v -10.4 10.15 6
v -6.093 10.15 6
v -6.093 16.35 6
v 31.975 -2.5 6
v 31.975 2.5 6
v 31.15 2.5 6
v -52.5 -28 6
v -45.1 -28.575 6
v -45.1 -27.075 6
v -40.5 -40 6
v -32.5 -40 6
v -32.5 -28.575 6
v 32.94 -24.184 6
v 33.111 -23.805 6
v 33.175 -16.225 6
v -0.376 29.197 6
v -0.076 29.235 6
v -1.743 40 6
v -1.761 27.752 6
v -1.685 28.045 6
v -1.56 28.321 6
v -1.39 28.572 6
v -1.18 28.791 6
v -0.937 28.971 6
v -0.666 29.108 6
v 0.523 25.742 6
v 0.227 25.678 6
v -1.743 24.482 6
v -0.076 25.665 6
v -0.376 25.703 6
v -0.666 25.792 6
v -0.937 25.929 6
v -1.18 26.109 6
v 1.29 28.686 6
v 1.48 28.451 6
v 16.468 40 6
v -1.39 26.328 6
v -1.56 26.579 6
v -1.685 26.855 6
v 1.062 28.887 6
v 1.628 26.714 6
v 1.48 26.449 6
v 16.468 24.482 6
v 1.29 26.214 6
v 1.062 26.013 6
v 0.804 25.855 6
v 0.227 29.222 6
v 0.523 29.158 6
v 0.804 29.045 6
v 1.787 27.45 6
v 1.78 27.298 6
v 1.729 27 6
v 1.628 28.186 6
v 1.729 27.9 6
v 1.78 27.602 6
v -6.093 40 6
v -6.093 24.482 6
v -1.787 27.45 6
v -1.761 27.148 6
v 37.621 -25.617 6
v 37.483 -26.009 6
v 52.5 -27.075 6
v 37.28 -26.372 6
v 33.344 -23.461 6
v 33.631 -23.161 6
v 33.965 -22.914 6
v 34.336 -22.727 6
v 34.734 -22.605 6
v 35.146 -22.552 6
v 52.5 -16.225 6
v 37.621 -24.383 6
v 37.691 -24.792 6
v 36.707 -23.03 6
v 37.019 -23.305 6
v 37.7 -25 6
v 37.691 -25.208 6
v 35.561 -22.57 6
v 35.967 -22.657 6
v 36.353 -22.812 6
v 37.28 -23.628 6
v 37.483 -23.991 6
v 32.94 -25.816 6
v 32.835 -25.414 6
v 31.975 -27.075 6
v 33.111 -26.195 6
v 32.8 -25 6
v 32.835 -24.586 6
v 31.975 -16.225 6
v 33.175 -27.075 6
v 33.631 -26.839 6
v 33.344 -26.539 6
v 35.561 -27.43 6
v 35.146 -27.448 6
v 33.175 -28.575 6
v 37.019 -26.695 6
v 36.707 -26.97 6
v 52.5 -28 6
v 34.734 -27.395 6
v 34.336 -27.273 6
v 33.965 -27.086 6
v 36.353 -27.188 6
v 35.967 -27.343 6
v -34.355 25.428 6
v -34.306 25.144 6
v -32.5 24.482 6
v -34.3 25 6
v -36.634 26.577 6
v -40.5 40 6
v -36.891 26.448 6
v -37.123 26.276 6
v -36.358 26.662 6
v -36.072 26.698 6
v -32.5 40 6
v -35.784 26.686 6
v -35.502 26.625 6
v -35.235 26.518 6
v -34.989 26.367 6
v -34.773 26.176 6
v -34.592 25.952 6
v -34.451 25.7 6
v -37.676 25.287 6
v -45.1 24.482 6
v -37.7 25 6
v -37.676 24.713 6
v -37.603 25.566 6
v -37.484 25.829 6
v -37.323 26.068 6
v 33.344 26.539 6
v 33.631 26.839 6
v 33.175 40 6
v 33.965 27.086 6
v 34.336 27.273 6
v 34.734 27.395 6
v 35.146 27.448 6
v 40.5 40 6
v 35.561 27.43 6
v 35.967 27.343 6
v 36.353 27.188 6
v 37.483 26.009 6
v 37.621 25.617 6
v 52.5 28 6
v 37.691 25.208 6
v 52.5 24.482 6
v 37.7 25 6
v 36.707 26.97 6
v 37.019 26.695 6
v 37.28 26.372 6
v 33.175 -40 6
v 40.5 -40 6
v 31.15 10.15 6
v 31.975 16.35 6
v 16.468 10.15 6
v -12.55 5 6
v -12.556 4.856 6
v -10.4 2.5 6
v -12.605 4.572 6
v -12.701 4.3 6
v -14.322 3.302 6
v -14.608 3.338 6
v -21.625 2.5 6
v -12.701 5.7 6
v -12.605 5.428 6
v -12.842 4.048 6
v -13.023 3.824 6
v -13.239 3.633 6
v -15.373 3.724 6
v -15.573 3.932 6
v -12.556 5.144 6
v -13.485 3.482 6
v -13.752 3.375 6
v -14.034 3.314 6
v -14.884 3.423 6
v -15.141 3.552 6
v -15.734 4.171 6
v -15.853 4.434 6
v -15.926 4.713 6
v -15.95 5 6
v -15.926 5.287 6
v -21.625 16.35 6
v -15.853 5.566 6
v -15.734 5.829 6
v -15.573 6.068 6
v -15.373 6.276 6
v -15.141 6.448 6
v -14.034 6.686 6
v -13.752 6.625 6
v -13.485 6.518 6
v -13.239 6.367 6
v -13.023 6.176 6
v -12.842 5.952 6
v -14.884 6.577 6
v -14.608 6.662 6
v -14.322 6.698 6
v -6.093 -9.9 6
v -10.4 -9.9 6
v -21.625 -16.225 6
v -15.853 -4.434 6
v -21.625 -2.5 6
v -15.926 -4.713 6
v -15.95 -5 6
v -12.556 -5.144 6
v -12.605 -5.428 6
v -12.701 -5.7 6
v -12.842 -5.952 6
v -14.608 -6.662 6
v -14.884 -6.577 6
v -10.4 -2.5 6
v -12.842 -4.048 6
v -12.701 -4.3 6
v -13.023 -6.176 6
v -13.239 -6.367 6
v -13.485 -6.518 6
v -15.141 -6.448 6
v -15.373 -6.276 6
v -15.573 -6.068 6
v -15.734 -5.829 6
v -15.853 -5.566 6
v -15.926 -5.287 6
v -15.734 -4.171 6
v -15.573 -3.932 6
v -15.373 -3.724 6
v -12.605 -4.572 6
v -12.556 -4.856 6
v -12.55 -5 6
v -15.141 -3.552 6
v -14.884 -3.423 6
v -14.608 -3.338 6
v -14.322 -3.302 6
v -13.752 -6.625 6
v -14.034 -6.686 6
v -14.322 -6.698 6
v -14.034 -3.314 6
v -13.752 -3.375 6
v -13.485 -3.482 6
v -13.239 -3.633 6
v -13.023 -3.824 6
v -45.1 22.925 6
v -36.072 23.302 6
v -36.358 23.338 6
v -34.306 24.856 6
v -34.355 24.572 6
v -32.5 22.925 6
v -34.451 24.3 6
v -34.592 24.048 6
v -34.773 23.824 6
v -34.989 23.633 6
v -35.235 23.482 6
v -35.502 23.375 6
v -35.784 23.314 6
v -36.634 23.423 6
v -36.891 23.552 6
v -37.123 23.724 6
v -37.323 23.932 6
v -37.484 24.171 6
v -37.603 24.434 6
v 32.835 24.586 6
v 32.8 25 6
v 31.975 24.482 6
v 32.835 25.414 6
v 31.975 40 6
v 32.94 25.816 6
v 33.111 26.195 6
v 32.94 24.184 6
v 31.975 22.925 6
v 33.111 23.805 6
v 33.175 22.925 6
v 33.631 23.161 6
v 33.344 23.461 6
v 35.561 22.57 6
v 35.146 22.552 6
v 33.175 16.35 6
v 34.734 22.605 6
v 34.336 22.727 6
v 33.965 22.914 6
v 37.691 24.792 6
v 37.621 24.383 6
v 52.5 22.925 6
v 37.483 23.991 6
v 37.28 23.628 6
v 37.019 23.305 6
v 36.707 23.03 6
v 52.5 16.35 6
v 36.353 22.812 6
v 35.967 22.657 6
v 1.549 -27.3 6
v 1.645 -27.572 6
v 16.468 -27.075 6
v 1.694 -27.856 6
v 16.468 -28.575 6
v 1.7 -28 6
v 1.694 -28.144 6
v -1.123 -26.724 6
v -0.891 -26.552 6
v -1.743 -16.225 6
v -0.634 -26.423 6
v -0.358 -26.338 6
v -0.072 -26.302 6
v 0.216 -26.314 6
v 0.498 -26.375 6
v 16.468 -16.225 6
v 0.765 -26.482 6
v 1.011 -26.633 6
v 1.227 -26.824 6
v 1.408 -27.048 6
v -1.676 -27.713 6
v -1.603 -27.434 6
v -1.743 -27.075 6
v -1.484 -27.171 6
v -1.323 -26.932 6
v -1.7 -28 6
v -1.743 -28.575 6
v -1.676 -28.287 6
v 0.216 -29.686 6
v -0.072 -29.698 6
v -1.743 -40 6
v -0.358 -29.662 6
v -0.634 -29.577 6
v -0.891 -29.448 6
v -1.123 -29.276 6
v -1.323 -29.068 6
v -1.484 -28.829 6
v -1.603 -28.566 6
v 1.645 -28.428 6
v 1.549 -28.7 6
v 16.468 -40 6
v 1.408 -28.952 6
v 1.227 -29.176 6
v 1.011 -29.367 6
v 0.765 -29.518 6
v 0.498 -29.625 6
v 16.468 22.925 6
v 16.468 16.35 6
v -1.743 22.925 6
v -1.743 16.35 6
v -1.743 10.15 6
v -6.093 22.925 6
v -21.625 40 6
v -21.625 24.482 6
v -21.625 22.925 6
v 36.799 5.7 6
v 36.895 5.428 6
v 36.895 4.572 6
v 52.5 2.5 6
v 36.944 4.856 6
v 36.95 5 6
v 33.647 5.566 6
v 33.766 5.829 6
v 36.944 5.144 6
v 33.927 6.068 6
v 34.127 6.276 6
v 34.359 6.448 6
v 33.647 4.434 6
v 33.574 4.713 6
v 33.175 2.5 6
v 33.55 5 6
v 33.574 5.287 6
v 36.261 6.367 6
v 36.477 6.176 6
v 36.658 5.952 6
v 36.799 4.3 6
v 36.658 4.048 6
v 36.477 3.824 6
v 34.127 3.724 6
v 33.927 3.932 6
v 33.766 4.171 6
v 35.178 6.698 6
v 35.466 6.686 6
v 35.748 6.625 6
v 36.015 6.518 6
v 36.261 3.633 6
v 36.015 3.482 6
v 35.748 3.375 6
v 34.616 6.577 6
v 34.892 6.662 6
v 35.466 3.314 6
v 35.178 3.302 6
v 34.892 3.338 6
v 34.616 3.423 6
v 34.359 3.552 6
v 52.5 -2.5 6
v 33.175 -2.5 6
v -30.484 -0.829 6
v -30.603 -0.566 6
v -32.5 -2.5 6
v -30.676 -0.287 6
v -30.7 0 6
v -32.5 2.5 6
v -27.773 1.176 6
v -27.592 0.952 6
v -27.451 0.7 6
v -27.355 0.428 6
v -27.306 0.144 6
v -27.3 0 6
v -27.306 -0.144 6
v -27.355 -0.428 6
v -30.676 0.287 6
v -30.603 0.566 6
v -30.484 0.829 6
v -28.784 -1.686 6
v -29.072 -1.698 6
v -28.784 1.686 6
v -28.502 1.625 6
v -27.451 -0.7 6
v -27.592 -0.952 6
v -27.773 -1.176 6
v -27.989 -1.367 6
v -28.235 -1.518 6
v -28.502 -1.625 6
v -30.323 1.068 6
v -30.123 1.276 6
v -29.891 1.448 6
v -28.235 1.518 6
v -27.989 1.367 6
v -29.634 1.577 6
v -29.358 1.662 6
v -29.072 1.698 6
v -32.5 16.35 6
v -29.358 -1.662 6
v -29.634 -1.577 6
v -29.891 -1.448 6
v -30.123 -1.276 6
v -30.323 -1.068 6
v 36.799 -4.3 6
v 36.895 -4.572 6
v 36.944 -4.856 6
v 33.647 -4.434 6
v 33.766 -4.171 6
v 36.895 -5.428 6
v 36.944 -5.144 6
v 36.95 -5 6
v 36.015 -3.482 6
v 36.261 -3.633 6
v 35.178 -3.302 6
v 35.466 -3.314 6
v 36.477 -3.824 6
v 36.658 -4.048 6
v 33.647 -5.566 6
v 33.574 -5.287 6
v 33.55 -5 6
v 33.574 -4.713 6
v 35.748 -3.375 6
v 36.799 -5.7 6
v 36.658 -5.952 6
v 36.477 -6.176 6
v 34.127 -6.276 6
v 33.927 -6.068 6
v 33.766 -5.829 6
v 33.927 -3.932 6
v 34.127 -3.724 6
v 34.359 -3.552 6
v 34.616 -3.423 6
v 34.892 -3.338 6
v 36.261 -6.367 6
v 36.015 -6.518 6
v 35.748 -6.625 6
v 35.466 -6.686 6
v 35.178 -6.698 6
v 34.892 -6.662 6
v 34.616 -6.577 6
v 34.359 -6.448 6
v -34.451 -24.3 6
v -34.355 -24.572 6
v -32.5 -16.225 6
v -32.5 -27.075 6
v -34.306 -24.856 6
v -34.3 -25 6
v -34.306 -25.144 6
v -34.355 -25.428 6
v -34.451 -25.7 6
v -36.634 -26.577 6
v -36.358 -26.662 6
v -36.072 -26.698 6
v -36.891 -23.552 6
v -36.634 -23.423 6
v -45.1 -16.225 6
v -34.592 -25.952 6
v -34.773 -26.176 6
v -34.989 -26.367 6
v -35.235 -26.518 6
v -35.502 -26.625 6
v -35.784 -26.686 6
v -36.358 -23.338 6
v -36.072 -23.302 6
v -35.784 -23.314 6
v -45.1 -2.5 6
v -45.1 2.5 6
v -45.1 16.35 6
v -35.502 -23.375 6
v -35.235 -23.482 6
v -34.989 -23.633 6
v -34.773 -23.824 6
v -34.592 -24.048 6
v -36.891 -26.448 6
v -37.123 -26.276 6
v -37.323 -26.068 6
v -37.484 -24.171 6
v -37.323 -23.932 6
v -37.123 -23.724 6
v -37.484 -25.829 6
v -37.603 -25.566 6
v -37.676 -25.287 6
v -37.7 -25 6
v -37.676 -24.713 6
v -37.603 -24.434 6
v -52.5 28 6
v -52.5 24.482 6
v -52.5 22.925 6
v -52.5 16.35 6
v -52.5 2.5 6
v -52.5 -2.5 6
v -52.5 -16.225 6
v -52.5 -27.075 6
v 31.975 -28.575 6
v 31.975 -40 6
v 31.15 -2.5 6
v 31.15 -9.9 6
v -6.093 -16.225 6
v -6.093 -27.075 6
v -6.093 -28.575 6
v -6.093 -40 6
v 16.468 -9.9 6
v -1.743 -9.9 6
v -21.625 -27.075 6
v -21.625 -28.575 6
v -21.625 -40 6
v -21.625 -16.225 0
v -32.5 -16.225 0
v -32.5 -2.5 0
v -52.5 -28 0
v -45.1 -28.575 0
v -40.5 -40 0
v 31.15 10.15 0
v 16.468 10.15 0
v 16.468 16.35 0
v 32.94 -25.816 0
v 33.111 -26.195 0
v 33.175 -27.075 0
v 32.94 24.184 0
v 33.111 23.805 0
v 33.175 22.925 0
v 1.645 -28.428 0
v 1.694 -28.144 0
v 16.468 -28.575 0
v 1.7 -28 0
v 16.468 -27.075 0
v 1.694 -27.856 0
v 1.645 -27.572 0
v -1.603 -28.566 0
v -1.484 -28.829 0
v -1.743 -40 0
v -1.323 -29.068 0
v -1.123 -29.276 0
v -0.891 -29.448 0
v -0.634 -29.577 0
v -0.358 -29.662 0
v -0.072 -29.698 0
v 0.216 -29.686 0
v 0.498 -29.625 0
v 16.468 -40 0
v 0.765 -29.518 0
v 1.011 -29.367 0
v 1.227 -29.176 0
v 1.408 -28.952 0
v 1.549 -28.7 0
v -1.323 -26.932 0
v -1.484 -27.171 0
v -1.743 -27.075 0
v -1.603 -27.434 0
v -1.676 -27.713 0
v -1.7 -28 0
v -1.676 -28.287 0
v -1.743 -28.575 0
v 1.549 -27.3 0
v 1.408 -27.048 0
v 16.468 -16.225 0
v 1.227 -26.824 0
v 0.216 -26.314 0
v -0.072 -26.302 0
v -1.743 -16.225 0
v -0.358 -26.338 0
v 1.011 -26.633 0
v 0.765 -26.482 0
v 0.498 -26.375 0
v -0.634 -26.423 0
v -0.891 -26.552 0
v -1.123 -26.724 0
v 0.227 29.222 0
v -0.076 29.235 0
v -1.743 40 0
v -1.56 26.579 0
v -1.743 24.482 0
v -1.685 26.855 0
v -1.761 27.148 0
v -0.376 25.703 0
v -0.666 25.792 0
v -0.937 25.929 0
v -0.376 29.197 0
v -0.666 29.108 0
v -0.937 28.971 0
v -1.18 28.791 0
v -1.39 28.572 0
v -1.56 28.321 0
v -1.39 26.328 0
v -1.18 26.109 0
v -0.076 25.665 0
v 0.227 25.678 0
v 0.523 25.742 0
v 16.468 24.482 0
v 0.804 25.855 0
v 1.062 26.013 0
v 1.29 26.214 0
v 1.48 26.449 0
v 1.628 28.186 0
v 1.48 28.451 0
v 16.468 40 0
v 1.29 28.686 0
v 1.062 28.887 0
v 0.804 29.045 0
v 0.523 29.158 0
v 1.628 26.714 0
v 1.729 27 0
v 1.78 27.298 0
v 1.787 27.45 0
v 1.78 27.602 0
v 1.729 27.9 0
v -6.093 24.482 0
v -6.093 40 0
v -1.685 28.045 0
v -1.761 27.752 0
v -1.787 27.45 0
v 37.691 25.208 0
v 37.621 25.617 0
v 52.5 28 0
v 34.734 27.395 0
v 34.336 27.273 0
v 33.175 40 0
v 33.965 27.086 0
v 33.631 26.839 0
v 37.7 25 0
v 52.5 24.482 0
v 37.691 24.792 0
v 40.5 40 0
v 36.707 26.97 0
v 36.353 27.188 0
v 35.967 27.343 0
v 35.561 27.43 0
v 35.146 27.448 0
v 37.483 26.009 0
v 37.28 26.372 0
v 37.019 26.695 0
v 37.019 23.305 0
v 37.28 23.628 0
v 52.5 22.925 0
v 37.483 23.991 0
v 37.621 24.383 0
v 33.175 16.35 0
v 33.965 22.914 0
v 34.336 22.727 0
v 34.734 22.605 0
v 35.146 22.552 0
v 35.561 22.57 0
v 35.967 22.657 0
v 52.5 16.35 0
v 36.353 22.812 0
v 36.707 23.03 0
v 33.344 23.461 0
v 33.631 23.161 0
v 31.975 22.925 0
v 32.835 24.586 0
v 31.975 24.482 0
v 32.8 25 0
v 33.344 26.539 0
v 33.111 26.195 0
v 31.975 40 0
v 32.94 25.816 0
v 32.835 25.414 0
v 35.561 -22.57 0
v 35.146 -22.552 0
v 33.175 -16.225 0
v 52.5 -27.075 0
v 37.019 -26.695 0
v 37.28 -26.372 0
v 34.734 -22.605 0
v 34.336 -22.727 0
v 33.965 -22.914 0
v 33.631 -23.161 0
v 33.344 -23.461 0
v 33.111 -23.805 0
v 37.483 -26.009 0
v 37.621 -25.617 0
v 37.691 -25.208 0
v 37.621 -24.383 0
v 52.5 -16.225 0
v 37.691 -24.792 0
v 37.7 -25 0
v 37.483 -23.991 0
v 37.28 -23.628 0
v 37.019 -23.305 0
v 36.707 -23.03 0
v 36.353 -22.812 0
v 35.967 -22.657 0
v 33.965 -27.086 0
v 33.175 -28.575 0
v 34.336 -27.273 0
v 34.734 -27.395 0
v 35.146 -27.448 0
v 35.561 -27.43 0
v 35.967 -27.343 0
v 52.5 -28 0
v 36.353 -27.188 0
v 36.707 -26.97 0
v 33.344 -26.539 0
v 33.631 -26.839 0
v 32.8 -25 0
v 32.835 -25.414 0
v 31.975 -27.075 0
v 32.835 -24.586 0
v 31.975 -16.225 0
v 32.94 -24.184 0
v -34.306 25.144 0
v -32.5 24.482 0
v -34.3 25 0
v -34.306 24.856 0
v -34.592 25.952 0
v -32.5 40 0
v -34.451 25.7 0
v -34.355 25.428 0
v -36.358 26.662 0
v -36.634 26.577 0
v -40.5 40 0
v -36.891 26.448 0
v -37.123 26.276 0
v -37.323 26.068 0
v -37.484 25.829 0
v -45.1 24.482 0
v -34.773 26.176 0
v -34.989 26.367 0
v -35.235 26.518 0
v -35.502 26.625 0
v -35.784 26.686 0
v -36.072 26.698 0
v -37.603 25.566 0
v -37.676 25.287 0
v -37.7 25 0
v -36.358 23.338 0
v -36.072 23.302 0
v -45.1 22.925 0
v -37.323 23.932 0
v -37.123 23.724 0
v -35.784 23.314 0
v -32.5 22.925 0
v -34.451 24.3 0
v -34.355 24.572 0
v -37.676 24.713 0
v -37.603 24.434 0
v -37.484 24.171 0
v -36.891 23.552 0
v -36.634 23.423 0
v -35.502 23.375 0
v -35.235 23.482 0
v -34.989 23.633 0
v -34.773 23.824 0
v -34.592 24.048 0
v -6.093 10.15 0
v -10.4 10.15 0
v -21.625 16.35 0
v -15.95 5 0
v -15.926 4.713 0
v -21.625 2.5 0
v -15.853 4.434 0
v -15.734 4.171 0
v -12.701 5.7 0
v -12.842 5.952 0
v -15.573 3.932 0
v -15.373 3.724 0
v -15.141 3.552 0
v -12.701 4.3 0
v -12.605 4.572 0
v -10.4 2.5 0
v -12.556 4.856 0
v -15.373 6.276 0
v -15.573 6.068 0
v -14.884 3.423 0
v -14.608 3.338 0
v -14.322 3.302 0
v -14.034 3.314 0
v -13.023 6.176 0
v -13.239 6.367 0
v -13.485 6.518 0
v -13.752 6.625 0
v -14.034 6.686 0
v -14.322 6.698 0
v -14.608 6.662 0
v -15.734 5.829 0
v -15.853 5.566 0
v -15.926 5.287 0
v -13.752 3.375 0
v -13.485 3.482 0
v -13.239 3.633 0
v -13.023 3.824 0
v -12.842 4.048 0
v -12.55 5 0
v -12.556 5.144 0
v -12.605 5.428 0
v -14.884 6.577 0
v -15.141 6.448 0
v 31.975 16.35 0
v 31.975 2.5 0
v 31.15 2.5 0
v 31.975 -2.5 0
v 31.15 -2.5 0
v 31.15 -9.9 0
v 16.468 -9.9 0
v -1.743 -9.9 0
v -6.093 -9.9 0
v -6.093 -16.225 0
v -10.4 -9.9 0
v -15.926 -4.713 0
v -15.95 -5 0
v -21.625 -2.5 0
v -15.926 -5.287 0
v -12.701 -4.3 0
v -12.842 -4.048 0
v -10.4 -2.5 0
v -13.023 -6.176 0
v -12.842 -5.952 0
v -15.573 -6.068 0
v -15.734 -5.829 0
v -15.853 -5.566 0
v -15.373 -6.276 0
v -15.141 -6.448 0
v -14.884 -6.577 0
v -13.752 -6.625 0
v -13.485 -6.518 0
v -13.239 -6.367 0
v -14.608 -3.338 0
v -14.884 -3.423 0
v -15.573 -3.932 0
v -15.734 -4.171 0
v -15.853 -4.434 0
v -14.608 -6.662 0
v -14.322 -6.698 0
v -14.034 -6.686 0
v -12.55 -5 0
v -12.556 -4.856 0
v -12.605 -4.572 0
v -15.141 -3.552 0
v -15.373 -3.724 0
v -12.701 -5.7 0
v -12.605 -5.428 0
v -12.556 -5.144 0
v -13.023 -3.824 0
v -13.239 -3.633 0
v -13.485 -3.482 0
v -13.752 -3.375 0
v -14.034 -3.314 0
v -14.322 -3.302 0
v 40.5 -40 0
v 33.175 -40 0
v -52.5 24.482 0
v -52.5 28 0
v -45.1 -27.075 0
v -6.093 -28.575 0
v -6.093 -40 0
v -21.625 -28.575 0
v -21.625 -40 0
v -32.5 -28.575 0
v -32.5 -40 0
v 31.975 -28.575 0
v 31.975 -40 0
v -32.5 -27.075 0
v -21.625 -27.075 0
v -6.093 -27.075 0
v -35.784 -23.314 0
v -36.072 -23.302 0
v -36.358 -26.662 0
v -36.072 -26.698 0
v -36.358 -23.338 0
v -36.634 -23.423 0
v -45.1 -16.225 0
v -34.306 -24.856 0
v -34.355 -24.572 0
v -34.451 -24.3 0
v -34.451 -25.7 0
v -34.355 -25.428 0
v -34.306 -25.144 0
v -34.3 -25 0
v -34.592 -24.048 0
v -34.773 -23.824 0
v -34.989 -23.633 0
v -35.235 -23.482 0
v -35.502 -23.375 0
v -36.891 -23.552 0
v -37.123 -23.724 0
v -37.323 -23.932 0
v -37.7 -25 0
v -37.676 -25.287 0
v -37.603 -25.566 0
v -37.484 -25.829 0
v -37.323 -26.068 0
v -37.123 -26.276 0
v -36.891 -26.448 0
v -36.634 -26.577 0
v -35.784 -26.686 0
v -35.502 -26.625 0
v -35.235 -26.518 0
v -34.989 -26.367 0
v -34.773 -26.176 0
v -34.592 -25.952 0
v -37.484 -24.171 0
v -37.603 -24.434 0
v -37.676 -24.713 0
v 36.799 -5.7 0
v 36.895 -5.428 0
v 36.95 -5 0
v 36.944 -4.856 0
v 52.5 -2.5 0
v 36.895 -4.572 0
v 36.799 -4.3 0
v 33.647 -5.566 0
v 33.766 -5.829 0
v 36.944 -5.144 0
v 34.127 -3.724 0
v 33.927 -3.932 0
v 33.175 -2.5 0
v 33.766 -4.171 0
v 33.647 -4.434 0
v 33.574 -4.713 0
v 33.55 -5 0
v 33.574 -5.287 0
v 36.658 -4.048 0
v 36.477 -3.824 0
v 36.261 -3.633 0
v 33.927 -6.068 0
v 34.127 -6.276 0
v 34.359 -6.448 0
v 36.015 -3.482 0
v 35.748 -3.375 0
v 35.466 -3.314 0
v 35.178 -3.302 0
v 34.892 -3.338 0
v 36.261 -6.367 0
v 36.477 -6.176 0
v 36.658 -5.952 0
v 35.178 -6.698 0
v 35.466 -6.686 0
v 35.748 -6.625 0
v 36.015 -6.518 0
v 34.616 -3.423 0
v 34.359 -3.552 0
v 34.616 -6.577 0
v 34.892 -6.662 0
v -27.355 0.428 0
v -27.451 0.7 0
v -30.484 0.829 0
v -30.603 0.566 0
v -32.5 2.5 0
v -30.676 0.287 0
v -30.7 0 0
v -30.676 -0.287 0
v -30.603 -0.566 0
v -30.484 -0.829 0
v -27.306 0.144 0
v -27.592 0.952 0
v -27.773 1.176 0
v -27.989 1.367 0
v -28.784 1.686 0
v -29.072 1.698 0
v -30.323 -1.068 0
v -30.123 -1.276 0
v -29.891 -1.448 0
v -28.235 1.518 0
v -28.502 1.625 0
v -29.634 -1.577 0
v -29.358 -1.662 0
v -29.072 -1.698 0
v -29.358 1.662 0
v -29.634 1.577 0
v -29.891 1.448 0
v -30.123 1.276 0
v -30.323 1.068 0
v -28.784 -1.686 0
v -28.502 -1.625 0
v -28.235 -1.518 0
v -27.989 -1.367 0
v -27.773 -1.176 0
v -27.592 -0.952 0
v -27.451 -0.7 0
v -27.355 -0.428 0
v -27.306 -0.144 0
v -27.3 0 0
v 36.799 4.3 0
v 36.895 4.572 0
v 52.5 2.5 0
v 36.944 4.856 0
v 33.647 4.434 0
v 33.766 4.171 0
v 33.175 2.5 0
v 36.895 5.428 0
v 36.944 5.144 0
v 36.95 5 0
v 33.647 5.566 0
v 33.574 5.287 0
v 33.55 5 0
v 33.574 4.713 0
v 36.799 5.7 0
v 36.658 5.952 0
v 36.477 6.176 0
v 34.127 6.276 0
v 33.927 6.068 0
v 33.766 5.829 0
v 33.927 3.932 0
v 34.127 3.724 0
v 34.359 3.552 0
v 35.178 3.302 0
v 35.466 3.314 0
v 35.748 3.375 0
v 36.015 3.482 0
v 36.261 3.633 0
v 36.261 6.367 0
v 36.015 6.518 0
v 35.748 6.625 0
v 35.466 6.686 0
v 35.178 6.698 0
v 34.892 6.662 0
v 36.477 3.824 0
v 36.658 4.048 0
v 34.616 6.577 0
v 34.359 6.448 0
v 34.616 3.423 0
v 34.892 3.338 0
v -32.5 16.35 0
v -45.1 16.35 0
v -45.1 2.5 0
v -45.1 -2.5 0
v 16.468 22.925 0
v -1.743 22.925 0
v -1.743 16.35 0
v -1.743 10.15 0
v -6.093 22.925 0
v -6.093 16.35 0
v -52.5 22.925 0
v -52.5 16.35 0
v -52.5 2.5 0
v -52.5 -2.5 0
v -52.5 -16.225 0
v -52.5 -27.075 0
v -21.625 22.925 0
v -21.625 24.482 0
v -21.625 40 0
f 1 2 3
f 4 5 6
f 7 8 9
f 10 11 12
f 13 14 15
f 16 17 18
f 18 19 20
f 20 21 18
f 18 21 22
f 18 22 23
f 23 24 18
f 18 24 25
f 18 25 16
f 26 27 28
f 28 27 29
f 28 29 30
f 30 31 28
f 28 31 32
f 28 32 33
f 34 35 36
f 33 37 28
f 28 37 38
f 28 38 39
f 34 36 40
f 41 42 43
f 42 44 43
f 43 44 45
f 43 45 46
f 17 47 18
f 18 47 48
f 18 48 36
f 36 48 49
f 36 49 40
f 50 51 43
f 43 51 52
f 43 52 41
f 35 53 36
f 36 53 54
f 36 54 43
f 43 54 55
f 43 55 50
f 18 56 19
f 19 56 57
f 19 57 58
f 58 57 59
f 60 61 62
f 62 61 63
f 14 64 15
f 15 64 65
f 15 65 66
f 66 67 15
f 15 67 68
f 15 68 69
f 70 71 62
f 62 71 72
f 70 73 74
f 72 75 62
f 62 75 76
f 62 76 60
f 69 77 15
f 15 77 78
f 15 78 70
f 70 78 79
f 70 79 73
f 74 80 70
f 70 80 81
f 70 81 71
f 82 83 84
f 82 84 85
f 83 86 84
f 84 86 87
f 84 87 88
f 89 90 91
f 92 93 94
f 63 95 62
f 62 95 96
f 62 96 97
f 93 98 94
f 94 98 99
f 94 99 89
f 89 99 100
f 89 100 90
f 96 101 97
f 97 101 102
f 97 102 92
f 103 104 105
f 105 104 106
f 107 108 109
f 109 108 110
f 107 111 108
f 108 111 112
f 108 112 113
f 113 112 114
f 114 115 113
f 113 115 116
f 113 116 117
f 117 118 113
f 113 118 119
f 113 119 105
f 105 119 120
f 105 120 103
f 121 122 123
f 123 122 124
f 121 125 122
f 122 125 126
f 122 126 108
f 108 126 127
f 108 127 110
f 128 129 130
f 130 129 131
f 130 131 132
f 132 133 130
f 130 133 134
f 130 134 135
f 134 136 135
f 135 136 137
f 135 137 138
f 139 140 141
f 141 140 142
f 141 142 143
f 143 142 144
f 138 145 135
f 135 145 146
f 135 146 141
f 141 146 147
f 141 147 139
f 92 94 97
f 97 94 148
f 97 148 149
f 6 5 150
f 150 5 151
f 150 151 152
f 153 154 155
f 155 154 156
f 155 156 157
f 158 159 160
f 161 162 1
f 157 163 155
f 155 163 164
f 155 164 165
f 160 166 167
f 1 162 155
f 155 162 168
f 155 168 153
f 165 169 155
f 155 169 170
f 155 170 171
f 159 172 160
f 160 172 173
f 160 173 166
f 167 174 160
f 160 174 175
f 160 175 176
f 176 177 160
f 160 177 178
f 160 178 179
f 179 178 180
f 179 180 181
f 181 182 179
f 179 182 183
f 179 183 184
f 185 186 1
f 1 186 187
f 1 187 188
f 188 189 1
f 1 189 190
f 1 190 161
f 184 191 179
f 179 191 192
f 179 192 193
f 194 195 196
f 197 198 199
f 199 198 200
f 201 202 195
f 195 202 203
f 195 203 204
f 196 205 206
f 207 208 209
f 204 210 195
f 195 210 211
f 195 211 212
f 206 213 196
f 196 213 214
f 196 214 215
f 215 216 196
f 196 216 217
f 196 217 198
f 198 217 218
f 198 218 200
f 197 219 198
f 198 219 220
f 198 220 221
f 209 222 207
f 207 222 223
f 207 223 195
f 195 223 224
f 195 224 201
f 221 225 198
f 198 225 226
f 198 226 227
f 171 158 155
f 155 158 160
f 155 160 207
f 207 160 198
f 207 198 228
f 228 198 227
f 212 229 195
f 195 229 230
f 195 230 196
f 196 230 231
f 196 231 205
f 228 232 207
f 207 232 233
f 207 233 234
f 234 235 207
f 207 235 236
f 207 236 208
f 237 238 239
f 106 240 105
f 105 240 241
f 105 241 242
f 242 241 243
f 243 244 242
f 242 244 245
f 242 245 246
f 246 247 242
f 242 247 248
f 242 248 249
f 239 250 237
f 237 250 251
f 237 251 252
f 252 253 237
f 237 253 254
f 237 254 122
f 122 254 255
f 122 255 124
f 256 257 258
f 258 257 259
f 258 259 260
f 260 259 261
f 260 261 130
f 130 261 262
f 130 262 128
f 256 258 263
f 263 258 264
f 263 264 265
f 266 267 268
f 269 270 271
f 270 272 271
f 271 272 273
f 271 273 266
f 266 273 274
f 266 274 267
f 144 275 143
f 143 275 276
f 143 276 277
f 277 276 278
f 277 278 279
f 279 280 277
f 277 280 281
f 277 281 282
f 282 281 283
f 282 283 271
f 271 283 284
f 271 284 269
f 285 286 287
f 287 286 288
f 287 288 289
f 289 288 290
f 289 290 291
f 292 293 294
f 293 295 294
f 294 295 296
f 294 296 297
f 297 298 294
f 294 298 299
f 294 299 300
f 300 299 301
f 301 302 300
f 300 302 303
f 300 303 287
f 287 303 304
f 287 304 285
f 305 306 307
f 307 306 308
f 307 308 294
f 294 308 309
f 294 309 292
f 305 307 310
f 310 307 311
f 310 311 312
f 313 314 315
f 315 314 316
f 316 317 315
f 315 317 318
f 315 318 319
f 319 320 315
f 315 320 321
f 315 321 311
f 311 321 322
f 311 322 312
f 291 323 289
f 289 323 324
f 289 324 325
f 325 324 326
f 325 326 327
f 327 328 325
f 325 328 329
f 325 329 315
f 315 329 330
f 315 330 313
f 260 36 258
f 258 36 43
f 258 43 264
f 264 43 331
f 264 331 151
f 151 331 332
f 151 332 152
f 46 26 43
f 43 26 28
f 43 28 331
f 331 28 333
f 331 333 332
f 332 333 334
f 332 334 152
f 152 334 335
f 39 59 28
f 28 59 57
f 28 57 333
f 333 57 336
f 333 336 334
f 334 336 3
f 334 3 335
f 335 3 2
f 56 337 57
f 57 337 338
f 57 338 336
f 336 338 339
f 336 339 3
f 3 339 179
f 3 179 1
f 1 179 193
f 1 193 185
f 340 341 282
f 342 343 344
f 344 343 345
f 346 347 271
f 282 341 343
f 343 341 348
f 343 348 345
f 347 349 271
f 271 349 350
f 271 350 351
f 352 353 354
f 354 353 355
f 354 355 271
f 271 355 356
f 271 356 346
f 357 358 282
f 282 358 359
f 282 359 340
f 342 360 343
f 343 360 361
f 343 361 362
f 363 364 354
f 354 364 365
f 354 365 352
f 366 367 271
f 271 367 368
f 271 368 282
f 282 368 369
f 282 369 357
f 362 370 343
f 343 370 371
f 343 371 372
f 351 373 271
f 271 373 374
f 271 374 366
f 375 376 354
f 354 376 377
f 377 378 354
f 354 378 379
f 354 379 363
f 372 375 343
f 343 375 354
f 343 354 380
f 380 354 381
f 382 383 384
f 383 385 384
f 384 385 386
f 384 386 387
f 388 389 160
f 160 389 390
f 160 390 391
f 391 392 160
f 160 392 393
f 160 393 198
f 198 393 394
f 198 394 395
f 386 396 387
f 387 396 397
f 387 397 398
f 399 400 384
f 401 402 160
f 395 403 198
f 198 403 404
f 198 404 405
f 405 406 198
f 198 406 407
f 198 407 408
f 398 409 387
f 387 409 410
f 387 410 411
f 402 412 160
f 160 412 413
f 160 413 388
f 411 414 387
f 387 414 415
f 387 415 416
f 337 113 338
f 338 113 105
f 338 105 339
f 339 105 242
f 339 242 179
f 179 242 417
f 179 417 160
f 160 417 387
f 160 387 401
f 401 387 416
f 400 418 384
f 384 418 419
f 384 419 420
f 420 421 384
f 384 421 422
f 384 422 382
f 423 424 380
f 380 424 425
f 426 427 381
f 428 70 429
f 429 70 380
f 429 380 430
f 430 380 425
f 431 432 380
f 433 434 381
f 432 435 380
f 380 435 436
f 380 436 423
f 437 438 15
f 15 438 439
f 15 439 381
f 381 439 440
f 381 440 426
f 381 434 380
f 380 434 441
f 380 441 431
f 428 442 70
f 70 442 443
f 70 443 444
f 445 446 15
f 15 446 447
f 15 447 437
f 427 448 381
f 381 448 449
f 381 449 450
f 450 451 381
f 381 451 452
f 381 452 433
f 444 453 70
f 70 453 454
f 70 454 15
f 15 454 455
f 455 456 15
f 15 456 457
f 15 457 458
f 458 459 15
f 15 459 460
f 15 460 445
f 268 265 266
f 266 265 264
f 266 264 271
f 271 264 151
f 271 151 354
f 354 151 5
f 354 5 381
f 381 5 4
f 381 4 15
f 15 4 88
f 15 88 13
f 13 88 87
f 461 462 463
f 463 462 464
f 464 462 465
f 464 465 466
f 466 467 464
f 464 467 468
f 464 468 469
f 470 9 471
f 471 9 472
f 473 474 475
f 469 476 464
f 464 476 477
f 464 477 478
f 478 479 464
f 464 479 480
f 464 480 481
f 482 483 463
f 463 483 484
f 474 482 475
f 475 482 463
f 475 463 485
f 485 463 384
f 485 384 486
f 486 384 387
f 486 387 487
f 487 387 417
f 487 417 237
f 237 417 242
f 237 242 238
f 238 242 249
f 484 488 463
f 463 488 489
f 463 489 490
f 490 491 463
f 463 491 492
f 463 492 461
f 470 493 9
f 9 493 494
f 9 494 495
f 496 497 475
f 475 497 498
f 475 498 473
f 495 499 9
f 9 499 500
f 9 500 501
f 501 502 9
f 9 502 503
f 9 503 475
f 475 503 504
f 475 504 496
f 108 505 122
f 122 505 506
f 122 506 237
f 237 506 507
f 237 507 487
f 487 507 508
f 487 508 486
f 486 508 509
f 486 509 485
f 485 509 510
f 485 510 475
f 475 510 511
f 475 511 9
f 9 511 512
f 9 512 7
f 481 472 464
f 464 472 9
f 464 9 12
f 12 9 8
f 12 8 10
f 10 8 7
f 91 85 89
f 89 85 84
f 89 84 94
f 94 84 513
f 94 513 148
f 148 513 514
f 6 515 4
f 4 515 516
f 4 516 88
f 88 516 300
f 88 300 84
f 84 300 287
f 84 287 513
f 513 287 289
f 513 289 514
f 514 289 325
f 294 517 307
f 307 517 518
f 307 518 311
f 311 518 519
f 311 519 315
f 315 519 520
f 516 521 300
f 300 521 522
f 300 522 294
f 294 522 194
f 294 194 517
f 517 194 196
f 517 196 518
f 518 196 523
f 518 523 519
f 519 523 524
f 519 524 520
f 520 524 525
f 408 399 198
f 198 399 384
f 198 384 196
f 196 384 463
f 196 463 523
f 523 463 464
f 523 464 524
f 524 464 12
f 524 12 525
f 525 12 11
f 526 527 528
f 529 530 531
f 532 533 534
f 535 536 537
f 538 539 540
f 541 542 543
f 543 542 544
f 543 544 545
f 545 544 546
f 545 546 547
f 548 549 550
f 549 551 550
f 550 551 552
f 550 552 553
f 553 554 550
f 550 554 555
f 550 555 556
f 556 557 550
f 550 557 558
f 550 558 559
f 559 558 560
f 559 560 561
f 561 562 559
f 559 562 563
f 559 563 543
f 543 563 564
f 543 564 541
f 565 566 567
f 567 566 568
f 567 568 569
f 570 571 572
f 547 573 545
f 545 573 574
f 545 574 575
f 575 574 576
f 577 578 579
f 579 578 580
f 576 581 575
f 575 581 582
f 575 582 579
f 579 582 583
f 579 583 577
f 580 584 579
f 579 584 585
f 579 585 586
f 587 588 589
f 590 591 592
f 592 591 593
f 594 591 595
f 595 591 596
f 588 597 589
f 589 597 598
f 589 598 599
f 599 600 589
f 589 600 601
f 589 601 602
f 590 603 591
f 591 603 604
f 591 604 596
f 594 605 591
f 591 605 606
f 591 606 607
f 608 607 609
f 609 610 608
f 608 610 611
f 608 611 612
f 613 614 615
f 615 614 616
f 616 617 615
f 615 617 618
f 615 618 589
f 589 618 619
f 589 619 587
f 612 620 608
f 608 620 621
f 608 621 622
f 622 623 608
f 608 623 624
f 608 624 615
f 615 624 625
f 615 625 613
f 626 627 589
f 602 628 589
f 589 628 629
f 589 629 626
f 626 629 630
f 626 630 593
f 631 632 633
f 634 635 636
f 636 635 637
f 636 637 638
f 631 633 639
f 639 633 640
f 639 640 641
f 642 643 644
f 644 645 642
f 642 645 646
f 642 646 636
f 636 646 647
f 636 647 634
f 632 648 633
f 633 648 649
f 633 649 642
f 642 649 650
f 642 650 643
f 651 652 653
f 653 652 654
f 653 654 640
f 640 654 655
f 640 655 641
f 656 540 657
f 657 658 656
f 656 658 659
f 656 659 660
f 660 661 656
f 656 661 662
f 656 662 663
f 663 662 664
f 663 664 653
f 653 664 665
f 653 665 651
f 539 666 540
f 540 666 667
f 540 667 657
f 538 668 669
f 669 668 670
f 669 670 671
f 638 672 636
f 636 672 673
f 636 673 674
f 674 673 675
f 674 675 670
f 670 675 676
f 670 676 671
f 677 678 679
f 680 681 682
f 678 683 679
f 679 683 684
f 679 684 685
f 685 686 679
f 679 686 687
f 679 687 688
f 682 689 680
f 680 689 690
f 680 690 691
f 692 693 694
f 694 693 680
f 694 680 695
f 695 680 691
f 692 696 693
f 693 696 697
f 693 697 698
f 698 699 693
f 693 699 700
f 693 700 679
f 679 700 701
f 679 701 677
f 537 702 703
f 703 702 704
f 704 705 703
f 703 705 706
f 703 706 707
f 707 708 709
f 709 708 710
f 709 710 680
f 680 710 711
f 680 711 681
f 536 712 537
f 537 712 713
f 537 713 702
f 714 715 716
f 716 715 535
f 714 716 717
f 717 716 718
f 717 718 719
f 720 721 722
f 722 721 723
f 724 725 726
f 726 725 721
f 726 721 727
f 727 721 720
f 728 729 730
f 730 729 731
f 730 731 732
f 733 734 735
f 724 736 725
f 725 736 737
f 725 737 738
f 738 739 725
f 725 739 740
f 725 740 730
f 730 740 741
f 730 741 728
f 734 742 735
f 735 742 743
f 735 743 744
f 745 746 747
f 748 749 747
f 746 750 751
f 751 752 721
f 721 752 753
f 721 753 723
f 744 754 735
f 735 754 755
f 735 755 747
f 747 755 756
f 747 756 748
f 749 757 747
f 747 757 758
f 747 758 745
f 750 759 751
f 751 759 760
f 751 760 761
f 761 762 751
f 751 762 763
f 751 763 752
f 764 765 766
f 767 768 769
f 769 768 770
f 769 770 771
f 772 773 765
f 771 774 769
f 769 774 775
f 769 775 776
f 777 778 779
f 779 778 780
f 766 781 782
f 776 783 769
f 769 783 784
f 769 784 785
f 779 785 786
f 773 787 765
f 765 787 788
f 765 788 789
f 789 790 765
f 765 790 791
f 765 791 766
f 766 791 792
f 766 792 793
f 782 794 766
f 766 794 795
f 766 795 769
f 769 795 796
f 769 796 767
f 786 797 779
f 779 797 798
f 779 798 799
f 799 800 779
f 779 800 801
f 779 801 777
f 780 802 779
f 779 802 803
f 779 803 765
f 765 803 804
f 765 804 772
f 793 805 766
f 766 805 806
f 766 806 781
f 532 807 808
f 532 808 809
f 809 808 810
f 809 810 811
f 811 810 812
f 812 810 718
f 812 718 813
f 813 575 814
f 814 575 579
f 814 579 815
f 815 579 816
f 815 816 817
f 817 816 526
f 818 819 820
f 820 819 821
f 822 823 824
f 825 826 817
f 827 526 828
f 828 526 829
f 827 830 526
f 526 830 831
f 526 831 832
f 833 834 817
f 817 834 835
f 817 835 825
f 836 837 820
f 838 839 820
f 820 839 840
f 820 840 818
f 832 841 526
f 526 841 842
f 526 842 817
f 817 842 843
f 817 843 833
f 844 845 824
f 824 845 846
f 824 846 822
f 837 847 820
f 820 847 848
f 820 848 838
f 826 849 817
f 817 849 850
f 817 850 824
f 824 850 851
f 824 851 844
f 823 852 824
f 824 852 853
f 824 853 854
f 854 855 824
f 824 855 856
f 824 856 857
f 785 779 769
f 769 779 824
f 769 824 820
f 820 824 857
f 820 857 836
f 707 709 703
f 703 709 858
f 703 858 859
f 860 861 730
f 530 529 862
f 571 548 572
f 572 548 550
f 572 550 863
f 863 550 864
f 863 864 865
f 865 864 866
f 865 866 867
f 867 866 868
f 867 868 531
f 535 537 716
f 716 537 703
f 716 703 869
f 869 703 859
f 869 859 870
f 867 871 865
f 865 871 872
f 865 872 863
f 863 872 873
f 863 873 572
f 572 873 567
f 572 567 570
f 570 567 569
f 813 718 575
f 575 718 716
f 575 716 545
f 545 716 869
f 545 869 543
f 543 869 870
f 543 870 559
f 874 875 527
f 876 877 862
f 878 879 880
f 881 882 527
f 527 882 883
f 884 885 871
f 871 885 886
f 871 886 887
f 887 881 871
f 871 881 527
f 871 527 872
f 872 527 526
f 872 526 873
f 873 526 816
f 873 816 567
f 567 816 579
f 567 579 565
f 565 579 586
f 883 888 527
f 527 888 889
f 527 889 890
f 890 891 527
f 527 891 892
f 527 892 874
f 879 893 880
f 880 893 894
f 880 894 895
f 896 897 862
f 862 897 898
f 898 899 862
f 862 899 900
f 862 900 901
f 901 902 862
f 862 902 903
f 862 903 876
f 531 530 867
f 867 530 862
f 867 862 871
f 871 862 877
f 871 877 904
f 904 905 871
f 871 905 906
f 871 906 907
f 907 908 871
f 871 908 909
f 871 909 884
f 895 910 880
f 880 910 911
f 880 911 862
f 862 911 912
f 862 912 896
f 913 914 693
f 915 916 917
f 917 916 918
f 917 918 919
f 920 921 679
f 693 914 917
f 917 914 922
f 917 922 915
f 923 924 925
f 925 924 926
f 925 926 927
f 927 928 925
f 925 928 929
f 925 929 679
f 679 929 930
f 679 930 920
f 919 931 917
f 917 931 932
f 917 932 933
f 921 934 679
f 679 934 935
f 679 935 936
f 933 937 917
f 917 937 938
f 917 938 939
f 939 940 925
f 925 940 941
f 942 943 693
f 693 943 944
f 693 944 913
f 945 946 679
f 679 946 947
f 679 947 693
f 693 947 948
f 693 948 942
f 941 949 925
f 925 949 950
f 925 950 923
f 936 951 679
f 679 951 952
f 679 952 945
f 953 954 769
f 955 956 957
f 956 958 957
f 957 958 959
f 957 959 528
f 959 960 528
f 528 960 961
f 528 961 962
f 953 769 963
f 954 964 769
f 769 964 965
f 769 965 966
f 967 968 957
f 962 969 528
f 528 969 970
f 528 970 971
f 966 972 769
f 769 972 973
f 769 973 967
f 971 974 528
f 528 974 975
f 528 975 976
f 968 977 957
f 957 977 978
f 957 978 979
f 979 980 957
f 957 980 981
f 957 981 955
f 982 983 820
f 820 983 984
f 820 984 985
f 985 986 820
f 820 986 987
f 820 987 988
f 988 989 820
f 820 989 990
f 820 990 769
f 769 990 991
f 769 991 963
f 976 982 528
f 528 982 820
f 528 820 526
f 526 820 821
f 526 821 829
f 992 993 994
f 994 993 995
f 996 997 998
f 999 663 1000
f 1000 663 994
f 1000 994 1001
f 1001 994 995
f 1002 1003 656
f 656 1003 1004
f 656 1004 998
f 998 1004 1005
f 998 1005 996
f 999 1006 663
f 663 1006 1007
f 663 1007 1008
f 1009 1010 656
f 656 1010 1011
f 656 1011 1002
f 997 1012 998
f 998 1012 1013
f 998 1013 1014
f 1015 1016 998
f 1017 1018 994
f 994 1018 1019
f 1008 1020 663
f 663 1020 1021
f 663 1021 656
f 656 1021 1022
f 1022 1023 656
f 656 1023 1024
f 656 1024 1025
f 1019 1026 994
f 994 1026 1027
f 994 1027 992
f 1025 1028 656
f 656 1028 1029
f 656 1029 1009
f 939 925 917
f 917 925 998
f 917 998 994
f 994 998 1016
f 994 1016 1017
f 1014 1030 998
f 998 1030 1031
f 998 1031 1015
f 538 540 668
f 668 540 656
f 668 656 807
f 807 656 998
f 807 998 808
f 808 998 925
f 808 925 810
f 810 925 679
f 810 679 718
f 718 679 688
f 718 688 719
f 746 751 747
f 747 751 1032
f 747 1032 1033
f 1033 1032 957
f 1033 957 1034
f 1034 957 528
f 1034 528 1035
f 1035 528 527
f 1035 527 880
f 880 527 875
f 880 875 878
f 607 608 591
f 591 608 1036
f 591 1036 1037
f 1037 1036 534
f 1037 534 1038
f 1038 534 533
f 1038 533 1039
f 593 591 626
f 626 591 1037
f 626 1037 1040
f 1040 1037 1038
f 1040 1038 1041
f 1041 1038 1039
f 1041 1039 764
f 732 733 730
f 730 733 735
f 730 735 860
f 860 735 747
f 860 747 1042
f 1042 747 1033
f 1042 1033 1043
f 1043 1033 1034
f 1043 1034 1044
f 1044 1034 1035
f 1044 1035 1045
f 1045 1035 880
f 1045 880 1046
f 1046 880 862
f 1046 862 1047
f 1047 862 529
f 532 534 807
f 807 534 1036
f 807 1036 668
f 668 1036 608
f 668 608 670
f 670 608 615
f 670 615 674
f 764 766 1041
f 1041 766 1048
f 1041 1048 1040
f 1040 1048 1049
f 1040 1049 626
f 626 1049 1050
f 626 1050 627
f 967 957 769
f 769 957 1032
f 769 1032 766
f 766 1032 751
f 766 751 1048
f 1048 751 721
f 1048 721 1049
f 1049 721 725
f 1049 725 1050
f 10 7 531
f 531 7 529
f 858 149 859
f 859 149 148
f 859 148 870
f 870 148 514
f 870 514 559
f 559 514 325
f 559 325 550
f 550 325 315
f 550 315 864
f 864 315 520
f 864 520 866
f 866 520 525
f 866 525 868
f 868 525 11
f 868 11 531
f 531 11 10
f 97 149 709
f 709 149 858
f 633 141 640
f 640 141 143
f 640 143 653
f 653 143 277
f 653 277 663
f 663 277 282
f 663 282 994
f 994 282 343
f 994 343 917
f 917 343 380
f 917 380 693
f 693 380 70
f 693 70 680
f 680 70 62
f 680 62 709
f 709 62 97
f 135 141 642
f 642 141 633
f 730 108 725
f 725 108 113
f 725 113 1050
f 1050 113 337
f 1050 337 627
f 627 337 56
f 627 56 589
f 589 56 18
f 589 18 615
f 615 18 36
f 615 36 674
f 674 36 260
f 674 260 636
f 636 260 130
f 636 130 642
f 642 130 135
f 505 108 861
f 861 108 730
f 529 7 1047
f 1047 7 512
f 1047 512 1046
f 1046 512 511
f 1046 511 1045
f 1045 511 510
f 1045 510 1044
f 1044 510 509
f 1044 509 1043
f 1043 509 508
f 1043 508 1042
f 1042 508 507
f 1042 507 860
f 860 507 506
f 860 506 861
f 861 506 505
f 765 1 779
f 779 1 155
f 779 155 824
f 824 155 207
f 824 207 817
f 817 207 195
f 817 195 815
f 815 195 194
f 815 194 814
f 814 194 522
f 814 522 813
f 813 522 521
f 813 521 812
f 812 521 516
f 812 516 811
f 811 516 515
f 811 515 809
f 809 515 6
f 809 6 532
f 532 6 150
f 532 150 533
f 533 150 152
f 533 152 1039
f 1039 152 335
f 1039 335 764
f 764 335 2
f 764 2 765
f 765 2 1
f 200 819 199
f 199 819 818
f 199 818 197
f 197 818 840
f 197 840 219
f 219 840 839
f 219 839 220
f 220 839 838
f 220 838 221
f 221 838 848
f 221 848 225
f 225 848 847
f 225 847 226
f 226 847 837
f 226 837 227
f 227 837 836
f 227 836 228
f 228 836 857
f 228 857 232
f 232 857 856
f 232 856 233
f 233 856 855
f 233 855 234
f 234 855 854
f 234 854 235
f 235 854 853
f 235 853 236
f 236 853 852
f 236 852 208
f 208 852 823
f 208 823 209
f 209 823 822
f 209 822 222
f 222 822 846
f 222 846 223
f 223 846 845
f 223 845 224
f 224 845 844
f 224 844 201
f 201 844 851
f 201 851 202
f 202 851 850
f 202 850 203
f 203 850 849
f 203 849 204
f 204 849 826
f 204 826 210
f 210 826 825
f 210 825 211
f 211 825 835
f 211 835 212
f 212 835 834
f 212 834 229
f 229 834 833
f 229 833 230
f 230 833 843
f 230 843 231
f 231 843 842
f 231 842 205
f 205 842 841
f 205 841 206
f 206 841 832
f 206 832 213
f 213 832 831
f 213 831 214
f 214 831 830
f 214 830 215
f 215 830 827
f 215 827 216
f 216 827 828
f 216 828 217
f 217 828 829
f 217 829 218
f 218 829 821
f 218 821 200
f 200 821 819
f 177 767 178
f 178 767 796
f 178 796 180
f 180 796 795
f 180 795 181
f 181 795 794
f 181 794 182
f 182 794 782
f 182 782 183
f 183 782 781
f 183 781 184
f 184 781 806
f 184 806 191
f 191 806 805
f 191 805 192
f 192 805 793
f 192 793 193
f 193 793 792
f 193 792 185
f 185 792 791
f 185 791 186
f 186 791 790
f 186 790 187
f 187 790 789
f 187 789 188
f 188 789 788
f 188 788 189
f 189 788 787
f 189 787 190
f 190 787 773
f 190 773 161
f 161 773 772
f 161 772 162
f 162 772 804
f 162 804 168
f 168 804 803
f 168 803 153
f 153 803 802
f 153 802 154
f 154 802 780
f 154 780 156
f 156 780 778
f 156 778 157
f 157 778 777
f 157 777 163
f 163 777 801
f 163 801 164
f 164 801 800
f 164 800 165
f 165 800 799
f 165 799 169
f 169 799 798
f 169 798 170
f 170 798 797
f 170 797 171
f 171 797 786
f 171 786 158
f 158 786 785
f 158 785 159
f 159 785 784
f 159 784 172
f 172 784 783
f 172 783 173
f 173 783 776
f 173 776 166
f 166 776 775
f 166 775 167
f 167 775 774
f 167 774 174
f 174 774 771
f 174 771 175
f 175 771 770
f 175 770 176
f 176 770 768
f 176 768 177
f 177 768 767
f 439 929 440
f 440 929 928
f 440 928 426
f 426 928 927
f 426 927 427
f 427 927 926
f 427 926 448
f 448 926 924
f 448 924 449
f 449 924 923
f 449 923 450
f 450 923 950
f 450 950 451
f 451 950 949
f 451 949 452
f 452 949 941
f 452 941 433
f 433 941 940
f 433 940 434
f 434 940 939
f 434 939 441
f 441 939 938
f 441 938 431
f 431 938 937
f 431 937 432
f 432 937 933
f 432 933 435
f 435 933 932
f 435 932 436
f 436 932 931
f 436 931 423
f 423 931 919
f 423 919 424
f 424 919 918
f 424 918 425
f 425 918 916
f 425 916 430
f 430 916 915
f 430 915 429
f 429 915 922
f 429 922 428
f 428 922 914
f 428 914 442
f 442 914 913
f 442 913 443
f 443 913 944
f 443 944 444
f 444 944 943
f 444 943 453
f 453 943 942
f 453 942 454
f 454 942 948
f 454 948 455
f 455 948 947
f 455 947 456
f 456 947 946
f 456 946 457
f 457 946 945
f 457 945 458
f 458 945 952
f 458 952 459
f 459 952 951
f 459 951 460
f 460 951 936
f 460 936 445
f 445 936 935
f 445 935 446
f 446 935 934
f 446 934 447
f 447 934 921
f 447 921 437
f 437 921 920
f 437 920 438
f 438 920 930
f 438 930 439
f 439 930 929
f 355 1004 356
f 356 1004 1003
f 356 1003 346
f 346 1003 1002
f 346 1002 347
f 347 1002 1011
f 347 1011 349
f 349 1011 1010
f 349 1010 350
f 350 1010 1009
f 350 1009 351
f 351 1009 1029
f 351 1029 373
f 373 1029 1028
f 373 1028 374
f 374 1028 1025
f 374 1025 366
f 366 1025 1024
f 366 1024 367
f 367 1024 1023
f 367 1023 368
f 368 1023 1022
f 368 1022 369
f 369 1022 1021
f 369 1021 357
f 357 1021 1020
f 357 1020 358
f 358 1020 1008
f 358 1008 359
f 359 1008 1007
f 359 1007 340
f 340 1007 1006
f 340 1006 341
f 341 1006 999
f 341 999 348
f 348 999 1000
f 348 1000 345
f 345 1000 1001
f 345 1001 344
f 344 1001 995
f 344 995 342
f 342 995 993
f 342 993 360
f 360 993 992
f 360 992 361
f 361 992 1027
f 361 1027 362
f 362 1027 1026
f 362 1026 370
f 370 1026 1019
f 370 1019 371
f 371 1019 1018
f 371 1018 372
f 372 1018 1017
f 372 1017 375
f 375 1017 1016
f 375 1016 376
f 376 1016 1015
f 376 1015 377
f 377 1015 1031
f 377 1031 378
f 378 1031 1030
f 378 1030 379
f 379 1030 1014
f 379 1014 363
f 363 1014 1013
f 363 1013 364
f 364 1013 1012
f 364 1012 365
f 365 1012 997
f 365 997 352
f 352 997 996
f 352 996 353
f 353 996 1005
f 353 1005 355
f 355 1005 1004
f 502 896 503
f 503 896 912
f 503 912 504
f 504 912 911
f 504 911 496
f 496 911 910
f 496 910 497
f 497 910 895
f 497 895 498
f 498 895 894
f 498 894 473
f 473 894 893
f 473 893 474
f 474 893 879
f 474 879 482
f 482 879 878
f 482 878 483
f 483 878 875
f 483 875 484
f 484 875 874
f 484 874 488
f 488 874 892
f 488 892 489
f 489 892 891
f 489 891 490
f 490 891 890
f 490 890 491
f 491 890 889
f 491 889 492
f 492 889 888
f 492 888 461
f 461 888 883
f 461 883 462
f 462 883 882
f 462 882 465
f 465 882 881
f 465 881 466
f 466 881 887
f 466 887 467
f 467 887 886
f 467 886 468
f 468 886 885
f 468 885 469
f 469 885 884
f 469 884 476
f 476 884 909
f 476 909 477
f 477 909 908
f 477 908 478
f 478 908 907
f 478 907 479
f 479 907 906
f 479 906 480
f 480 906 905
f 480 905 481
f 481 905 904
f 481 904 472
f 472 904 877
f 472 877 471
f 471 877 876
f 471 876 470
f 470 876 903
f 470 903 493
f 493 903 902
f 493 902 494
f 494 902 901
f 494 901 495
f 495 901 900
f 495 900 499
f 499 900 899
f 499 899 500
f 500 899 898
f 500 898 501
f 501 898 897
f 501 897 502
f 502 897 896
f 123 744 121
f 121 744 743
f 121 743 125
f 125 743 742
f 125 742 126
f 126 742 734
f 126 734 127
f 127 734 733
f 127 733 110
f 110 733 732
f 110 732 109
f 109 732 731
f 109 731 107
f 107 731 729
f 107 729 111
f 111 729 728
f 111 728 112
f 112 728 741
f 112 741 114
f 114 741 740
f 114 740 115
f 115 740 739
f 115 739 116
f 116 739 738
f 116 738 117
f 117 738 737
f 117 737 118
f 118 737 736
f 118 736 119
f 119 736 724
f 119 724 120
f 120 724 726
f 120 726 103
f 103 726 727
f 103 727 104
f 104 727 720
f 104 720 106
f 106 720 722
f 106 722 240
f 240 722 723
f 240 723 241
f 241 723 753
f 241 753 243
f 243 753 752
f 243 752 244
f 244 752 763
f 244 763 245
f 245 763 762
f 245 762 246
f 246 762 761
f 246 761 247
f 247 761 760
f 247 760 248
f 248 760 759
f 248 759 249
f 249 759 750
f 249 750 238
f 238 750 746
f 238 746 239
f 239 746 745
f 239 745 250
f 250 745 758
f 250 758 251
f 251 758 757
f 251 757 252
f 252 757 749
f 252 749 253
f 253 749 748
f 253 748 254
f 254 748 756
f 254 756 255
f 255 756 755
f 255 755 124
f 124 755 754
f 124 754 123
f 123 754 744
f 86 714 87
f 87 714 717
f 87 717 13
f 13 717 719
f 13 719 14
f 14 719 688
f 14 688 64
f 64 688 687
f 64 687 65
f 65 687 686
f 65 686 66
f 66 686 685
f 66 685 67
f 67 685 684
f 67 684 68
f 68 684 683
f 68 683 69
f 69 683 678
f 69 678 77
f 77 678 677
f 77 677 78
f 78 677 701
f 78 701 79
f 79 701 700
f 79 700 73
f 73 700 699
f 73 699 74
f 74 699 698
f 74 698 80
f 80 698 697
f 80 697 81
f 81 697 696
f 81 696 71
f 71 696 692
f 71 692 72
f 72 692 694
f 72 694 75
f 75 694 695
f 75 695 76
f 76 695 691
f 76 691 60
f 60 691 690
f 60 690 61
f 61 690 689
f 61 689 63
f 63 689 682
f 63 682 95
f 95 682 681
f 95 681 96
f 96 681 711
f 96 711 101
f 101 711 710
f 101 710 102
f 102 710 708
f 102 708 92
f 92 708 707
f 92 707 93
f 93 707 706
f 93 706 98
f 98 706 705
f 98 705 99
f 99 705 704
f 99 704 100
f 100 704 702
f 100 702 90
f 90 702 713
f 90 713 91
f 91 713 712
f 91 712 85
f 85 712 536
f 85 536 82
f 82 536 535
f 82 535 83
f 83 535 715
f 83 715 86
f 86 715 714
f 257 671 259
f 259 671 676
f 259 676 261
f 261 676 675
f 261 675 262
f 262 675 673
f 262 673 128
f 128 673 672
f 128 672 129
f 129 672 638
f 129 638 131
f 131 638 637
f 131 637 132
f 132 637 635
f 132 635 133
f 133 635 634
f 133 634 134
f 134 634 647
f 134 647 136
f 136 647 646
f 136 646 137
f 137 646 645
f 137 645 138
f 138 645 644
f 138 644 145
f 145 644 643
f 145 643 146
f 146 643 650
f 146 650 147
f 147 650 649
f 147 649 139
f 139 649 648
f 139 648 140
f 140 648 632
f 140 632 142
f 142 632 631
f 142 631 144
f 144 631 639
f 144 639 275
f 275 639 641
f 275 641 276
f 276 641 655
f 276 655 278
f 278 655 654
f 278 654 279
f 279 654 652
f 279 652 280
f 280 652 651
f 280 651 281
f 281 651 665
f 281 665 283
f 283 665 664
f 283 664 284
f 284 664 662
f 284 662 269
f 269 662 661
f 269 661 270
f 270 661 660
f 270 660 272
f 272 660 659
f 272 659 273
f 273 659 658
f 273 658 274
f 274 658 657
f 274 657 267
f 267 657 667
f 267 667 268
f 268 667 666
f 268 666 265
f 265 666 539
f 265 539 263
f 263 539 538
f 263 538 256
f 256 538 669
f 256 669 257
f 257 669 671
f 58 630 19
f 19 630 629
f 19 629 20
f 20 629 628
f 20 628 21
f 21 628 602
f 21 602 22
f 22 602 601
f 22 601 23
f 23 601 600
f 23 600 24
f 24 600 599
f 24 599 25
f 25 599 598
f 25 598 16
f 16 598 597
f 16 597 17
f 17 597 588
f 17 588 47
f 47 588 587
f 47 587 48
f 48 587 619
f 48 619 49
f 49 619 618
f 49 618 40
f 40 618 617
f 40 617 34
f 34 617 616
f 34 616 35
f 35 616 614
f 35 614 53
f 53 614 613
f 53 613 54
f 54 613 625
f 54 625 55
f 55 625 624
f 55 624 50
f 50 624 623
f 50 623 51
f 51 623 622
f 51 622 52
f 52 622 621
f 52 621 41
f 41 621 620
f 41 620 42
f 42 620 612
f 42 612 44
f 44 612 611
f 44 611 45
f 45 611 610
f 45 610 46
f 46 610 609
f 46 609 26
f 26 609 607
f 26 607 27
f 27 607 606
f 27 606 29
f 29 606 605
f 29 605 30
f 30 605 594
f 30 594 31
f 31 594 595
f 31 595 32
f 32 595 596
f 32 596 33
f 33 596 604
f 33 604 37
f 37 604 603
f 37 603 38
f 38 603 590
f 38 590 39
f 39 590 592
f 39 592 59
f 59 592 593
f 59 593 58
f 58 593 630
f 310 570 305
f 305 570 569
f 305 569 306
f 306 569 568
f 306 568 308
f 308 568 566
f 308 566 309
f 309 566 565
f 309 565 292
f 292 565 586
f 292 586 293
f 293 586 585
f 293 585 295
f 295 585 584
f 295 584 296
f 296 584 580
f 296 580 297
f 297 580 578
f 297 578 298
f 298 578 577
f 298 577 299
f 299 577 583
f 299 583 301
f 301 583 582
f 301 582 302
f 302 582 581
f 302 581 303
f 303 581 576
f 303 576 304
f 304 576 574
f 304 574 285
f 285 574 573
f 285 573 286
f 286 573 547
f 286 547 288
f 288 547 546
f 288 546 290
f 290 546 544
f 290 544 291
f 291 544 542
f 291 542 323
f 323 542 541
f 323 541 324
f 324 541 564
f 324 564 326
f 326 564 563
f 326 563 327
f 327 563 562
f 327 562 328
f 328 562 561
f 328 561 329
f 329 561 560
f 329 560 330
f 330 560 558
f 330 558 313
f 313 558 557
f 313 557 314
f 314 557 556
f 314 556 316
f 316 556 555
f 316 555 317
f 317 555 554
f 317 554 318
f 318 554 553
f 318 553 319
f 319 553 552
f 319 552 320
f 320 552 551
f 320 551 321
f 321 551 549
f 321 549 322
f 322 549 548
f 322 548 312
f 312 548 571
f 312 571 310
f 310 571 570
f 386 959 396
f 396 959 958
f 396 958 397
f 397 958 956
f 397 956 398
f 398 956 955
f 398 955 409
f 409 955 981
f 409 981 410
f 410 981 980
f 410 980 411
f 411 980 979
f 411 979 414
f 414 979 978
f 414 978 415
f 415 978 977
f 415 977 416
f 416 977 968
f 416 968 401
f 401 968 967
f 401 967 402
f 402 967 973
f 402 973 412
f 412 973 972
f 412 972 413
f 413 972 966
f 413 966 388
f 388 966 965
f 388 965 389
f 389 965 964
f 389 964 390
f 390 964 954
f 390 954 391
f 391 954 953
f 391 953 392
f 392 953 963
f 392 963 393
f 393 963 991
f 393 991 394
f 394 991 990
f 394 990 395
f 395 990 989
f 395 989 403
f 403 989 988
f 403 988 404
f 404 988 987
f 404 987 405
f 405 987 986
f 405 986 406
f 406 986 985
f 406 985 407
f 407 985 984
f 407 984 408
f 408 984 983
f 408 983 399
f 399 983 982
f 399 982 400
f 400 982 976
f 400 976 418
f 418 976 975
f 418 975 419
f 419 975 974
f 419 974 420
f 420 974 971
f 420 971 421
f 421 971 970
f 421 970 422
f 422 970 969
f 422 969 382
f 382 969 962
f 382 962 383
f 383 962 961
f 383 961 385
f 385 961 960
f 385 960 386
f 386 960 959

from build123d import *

# Parameters (mm, degrees)
SKETCH_1_R                = 1.7
SKETCH_1_R_2              = 2.45
SKETCH_1_R_3              = 1.786756839
SKETCH_1_W                = 41.55
SKETCH_1_H                = 20.05
F_02_PAN_SERVO_DECK_DEPTH = 6


with BuildPart() as part:
    # Эскиз1 → 02_Pan_servo_deck (new body)
    with BuildSketch(Plane.XY):
        Polygon((-40.5, -40), (40.5, -40), (52.5, -28), (52.5, 28), (40.5, 40), (-40.5, 40), (-52.5, 28), (-52.5, -28), align=None)
        with Locations((-14.25, -5)):
            Circle(SKETCH_1_R, mode=Mode.SUBTRACT)
        with Locations((-14.25, 5)):
            Circle(SKETCH_1_R, mode=Mode.SUBTRACT)
        with Locations((35.25, -5)):
            Circle(SKETCH_1_R, mode=Mode.SUBTRACT)
        with Locations((35.25, 5)):
            Circle(SKETCH_1_R, mode=Mode.SUBTRACT)
        with Locations((-36, -25)):
            Circle(SKETCH_1_R, mode=Mode.SUBTRACT)
        with Locations((-36, 25)):
            Circle(SKETCH_1_R, mode=Mode.SUBTRACT)
        with Locations((35.25, -25)):
            Circle(SKETCH_1_R_2, mode=Mode.SUBTRACT)
        with Locations((35.25, 25)):
            Circle(SKETCH_1_R_2, mode=Mode.SUBTRACT)
        with Locations((0, 27.45)):
            Circle(SKETCH_1_R_3, mode=Mode.SUBTRACT)
        with Locations((0, -28)):
            Circle(SKETCH_1_R, mode=Mode.SUBTRACT)
        with Locations((-29, 0)):
            Circle(SKETCH_1_R, mode=Mode.SUBTRACT)
        with Locations((10.375, 0.125)):
            Rectangle(SKETCH_1_W, SKETCH_1_H, mode=Mode.SUBTRACT)
    extrude(amount=F_02_PAN_SERVO_DECK_DEPTH)


solid = part.part
